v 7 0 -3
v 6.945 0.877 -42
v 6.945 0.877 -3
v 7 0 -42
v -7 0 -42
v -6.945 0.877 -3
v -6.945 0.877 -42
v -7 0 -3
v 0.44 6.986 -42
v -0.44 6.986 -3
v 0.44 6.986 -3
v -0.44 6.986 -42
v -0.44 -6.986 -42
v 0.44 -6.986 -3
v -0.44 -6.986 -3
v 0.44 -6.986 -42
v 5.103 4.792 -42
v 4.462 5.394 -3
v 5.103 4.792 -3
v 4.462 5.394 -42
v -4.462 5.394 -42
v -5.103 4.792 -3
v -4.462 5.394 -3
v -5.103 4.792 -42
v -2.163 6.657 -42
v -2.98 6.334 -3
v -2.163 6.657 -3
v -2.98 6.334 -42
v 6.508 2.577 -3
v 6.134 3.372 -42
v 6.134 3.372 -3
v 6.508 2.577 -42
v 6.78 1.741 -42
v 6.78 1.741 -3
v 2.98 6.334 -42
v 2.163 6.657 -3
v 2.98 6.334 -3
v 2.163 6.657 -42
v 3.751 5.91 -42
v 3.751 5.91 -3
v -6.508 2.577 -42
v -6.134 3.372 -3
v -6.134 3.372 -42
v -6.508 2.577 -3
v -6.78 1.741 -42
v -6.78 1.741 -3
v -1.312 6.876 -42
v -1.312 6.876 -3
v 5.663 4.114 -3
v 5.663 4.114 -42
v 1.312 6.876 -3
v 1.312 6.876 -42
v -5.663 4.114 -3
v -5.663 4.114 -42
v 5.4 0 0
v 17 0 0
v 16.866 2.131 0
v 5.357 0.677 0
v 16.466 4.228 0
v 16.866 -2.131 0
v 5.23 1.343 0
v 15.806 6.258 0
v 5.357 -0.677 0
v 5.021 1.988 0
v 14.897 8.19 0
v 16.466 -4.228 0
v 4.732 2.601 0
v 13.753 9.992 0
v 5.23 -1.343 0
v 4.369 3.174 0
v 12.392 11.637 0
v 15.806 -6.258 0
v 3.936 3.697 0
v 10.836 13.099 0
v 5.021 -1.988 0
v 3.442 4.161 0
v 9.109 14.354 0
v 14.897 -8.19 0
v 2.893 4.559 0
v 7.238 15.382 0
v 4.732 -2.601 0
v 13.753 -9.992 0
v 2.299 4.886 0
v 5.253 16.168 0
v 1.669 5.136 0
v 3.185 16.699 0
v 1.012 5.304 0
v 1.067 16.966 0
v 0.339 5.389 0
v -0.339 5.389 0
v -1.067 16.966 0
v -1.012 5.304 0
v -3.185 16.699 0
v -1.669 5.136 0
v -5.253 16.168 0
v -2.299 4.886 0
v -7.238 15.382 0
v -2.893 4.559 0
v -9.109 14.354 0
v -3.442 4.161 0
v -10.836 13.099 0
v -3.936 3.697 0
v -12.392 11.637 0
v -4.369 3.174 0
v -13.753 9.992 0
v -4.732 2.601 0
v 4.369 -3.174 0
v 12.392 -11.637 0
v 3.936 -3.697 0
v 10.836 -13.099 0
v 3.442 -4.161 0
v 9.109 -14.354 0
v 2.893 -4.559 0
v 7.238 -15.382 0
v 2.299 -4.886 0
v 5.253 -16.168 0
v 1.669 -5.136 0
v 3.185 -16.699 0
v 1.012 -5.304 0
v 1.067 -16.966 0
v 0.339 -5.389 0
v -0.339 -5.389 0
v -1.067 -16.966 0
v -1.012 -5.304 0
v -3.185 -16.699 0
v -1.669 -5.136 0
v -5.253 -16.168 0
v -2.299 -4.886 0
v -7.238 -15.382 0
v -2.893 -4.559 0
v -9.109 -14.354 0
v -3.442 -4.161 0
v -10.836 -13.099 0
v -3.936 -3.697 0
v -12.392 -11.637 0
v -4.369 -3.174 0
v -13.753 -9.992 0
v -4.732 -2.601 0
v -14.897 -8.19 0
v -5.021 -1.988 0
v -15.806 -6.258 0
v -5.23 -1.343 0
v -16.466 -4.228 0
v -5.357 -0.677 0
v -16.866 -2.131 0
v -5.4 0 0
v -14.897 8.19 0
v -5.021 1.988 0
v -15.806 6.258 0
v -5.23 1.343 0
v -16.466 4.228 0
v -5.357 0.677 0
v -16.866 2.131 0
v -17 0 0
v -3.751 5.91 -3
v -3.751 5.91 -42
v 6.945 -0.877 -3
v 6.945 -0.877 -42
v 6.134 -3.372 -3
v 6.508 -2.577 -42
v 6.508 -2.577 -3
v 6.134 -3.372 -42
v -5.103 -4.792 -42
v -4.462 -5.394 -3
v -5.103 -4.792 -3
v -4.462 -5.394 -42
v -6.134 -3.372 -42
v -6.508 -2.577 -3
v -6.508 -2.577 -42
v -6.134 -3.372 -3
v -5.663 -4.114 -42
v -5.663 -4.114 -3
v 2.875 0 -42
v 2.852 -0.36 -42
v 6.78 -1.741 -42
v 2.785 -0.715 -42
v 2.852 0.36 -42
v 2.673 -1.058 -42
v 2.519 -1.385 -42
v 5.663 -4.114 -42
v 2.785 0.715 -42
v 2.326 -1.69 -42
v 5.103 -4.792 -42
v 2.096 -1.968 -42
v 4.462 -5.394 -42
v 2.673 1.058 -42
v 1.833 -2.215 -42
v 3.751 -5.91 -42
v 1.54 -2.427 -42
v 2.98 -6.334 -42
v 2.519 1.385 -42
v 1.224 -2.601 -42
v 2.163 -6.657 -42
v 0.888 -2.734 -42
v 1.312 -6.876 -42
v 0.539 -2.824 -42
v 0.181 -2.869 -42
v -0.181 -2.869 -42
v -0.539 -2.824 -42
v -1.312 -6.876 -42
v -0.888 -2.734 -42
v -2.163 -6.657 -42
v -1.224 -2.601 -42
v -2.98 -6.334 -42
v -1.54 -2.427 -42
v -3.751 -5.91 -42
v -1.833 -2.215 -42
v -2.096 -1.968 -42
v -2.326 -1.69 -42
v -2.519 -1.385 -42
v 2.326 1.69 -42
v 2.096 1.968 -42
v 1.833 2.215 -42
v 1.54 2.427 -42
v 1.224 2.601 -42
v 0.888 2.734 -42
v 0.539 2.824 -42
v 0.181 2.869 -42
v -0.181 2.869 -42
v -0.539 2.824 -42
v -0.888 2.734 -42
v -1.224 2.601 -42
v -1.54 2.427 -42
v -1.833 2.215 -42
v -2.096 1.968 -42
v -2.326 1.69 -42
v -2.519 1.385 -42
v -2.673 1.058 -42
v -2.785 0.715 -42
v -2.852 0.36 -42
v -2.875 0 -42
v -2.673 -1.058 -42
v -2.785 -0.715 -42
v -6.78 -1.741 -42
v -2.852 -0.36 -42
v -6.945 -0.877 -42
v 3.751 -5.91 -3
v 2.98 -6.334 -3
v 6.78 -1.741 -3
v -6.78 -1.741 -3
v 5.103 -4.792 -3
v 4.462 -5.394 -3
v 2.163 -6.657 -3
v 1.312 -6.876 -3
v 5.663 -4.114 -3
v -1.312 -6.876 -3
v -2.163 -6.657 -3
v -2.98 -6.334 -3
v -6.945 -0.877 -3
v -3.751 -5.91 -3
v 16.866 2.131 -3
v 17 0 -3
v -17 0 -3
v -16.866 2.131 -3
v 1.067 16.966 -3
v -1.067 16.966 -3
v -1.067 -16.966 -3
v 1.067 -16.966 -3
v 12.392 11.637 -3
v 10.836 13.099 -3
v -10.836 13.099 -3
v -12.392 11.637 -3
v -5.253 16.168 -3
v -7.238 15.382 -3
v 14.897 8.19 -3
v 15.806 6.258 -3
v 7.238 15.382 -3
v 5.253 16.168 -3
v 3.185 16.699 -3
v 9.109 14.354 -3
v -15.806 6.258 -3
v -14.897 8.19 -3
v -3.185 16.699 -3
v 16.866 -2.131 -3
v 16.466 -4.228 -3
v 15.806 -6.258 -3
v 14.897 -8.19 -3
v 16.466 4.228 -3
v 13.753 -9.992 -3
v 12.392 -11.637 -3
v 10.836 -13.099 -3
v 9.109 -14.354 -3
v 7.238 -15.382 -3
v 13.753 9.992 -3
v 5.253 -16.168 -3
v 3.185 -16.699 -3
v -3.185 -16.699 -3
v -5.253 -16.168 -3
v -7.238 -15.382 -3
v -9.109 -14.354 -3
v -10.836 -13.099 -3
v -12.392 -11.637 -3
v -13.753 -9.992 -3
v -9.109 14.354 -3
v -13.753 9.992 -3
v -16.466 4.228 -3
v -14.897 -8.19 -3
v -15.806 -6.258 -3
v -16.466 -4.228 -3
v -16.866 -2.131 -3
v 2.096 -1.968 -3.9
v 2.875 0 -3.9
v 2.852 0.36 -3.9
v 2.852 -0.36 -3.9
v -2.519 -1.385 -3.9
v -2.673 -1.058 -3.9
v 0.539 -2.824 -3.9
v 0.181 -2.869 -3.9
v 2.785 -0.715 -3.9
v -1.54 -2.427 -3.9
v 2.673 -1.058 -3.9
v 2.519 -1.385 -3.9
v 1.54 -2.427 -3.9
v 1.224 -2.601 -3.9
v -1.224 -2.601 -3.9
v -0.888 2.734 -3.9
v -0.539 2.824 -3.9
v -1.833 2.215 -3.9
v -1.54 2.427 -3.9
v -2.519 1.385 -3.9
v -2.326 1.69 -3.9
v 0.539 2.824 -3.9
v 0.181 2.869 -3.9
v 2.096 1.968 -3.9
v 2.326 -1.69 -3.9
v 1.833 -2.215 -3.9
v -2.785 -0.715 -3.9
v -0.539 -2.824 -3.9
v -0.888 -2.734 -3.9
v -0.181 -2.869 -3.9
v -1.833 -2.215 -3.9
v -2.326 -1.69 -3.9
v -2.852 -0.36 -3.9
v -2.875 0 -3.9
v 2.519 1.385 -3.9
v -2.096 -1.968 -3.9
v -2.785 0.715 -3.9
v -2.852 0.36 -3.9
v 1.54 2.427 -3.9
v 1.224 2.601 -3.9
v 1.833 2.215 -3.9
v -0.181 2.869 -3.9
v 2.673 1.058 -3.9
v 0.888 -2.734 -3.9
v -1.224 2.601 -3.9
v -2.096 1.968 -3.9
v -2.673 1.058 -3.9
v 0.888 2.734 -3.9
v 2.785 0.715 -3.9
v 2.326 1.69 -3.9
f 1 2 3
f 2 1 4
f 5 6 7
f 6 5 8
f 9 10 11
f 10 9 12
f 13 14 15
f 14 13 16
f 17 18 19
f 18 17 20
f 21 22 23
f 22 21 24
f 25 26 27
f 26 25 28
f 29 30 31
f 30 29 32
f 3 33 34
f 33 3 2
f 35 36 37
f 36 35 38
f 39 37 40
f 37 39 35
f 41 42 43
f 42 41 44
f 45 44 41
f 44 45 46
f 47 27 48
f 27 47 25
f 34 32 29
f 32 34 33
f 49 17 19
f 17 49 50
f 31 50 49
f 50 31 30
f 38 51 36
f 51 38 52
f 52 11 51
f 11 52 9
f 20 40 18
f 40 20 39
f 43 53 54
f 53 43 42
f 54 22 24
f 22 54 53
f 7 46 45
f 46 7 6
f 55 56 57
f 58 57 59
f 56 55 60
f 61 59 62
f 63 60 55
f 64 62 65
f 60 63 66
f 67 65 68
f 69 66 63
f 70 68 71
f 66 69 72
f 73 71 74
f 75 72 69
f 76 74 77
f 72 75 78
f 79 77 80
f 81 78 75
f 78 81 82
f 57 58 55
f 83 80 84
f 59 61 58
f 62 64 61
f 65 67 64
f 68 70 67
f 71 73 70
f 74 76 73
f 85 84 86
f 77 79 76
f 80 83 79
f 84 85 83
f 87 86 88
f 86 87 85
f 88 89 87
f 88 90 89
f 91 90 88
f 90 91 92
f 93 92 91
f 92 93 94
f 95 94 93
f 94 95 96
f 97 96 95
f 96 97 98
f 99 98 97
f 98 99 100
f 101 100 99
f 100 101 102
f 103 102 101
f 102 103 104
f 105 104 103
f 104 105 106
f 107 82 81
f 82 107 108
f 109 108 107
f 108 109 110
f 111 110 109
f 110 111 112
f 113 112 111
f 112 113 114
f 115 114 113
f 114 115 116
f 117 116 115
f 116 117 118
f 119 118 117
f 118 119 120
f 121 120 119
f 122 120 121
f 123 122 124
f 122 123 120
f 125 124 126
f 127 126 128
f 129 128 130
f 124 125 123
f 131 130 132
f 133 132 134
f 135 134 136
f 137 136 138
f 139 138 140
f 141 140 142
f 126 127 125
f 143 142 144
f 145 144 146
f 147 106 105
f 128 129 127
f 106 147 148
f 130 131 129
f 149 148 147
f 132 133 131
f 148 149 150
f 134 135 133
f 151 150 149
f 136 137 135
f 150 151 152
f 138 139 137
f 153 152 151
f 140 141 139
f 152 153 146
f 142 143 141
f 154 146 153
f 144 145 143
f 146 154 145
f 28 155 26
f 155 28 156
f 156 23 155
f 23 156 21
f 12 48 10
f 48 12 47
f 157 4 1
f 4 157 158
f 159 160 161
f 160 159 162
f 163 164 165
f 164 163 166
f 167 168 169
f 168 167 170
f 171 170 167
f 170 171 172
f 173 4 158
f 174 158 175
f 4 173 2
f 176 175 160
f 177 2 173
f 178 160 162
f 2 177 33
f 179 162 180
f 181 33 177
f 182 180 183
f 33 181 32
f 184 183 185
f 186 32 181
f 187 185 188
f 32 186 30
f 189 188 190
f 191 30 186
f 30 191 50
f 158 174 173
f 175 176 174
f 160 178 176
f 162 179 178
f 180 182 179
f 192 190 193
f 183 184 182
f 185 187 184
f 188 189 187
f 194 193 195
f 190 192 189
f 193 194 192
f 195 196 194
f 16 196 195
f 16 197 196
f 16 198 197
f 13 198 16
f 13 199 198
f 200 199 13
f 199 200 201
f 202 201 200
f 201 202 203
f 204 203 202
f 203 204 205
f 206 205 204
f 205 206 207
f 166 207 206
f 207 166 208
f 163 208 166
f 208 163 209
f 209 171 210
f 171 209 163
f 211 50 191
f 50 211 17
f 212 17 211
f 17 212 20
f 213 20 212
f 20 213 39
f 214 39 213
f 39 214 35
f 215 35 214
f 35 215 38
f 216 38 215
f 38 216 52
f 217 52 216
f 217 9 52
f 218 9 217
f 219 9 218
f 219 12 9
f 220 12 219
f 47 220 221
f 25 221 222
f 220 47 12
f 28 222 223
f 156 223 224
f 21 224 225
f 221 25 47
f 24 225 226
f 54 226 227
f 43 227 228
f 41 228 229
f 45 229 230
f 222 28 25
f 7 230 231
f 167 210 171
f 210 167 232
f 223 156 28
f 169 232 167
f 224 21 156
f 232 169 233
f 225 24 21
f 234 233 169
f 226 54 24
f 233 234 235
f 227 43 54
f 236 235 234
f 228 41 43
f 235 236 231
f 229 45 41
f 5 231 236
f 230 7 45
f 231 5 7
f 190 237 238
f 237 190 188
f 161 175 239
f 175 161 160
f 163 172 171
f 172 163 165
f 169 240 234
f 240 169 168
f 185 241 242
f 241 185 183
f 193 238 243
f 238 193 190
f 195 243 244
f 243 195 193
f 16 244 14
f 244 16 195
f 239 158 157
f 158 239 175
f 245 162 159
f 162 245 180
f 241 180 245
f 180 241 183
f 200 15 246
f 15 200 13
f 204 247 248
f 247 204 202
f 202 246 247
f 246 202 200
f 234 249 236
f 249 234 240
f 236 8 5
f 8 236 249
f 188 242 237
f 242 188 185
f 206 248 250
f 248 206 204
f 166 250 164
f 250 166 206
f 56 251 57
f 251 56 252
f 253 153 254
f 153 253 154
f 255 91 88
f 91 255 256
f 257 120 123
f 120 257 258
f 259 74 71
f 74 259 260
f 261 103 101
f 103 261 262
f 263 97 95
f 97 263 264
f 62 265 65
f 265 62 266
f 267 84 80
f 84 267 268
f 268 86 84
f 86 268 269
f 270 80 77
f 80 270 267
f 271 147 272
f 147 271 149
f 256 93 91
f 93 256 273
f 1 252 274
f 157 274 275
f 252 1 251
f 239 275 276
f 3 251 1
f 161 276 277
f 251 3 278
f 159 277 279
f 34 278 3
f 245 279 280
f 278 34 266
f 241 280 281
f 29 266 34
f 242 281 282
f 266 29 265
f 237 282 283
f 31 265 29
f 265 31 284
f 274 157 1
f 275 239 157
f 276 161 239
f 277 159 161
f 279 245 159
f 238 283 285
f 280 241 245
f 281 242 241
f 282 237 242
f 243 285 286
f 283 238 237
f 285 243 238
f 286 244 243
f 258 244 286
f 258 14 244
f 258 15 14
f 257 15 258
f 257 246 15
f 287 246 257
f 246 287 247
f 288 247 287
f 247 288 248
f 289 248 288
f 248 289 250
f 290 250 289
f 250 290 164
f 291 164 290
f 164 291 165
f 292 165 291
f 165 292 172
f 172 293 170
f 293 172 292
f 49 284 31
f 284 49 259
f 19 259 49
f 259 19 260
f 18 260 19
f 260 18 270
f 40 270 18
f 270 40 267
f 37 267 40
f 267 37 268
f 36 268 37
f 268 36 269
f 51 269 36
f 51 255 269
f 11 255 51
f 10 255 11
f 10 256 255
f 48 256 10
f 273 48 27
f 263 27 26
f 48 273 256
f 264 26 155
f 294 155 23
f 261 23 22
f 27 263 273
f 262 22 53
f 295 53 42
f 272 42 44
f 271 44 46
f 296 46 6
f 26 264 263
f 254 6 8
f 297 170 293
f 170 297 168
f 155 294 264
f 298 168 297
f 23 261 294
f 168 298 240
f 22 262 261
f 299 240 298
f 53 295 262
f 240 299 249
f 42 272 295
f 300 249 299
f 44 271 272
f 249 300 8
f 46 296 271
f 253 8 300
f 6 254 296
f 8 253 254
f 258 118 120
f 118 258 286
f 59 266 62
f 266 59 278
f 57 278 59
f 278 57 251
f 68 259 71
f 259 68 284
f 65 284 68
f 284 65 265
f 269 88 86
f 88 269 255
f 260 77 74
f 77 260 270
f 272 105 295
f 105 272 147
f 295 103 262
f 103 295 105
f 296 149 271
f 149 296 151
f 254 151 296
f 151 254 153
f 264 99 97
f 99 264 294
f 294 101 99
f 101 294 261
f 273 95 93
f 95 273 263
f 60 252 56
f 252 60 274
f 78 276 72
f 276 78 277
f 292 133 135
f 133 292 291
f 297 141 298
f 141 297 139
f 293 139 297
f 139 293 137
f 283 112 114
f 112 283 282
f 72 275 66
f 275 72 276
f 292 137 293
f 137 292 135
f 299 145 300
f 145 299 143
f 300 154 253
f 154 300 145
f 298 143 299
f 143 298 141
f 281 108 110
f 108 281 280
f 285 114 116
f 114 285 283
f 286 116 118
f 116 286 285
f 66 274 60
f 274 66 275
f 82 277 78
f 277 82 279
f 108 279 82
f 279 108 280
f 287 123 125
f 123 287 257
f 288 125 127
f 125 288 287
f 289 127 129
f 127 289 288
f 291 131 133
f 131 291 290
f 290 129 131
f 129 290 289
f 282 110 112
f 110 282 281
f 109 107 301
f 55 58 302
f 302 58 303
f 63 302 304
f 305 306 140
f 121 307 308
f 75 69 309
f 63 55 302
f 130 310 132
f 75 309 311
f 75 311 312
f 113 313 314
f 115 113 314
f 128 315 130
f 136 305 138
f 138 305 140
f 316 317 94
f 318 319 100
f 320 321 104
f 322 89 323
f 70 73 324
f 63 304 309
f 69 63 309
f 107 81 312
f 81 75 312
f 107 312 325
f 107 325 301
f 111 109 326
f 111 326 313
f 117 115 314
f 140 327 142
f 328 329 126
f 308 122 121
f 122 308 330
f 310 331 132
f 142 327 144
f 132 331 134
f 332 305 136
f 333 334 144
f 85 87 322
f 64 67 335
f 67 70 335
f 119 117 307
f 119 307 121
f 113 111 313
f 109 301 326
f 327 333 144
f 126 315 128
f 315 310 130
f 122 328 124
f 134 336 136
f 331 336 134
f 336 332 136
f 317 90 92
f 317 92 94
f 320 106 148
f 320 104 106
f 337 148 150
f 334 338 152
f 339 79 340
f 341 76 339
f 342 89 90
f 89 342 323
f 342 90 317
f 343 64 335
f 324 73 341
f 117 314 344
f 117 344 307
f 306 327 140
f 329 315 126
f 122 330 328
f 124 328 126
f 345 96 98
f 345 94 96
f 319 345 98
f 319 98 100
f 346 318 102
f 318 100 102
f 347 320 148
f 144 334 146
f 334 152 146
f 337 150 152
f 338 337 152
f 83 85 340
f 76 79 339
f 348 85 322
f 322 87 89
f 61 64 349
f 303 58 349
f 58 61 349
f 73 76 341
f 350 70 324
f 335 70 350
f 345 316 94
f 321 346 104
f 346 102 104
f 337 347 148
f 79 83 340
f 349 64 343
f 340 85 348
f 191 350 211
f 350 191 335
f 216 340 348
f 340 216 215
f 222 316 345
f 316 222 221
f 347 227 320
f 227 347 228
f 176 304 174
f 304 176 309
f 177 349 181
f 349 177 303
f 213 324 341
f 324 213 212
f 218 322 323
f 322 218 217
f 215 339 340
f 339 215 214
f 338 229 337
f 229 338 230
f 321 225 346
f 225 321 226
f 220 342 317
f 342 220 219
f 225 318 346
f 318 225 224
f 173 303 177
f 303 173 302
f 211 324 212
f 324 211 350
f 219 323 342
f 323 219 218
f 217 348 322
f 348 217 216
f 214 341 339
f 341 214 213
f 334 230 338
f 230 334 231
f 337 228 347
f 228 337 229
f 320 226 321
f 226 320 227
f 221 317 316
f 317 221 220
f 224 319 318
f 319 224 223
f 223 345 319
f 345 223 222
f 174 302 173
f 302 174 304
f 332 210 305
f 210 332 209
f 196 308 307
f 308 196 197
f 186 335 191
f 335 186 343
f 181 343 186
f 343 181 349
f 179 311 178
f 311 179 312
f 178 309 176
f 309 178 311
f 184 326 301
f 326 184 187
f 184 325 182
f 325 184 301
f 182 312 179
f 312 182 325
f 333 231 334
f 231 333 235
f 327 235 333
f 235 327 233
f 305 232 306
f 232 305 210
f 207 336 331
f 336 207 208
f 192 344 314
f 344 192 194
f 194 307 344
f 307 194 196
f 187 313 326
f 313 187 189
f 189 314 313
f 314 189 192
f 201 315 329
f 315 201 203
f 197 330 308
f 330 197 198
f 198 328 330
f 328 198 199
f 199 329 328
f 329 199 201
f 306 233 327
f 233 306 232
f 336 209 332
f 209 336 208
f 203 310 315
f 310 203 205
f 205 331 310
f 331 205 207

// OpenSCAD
$fn = 50;


difference() {
	union() {
		translate(v = [0, 0, -42.0000000000]) {
			cylinder(h = 42, r = 7.0000000000);
		}
		translate(v = [0, 0, -3.0000000000]) {
			cylinder(h = 3, r = 17.0000000000);
		}
	}
	union() {
		translate(v = [0, 0, 0]) {
			rotate(a = [0, 0, 0]) {
				difference() {
					union() {
						#translate(v = [0, 0, -42.0000000000]) {
							cylinder(h = 42, r = 2.6000000000);
						}
						#translate(v = [0, 0, -3.9000000000]) {
							cylinder(h = 3.9000000000, r1 = 2.8750000000, r2 = 5.4000000000);
						}
						#translate(v = [0, 0, -42.0000000000]) {
							cylinder(h = 42, r = 2.8750000000);
						}
						#translate(v = [0, 0, -42.0000000000]) {
							cylinder(h = 42, r = 2.6000000000);
						}
					}
					union();
				}
			}
		}
	}
}
